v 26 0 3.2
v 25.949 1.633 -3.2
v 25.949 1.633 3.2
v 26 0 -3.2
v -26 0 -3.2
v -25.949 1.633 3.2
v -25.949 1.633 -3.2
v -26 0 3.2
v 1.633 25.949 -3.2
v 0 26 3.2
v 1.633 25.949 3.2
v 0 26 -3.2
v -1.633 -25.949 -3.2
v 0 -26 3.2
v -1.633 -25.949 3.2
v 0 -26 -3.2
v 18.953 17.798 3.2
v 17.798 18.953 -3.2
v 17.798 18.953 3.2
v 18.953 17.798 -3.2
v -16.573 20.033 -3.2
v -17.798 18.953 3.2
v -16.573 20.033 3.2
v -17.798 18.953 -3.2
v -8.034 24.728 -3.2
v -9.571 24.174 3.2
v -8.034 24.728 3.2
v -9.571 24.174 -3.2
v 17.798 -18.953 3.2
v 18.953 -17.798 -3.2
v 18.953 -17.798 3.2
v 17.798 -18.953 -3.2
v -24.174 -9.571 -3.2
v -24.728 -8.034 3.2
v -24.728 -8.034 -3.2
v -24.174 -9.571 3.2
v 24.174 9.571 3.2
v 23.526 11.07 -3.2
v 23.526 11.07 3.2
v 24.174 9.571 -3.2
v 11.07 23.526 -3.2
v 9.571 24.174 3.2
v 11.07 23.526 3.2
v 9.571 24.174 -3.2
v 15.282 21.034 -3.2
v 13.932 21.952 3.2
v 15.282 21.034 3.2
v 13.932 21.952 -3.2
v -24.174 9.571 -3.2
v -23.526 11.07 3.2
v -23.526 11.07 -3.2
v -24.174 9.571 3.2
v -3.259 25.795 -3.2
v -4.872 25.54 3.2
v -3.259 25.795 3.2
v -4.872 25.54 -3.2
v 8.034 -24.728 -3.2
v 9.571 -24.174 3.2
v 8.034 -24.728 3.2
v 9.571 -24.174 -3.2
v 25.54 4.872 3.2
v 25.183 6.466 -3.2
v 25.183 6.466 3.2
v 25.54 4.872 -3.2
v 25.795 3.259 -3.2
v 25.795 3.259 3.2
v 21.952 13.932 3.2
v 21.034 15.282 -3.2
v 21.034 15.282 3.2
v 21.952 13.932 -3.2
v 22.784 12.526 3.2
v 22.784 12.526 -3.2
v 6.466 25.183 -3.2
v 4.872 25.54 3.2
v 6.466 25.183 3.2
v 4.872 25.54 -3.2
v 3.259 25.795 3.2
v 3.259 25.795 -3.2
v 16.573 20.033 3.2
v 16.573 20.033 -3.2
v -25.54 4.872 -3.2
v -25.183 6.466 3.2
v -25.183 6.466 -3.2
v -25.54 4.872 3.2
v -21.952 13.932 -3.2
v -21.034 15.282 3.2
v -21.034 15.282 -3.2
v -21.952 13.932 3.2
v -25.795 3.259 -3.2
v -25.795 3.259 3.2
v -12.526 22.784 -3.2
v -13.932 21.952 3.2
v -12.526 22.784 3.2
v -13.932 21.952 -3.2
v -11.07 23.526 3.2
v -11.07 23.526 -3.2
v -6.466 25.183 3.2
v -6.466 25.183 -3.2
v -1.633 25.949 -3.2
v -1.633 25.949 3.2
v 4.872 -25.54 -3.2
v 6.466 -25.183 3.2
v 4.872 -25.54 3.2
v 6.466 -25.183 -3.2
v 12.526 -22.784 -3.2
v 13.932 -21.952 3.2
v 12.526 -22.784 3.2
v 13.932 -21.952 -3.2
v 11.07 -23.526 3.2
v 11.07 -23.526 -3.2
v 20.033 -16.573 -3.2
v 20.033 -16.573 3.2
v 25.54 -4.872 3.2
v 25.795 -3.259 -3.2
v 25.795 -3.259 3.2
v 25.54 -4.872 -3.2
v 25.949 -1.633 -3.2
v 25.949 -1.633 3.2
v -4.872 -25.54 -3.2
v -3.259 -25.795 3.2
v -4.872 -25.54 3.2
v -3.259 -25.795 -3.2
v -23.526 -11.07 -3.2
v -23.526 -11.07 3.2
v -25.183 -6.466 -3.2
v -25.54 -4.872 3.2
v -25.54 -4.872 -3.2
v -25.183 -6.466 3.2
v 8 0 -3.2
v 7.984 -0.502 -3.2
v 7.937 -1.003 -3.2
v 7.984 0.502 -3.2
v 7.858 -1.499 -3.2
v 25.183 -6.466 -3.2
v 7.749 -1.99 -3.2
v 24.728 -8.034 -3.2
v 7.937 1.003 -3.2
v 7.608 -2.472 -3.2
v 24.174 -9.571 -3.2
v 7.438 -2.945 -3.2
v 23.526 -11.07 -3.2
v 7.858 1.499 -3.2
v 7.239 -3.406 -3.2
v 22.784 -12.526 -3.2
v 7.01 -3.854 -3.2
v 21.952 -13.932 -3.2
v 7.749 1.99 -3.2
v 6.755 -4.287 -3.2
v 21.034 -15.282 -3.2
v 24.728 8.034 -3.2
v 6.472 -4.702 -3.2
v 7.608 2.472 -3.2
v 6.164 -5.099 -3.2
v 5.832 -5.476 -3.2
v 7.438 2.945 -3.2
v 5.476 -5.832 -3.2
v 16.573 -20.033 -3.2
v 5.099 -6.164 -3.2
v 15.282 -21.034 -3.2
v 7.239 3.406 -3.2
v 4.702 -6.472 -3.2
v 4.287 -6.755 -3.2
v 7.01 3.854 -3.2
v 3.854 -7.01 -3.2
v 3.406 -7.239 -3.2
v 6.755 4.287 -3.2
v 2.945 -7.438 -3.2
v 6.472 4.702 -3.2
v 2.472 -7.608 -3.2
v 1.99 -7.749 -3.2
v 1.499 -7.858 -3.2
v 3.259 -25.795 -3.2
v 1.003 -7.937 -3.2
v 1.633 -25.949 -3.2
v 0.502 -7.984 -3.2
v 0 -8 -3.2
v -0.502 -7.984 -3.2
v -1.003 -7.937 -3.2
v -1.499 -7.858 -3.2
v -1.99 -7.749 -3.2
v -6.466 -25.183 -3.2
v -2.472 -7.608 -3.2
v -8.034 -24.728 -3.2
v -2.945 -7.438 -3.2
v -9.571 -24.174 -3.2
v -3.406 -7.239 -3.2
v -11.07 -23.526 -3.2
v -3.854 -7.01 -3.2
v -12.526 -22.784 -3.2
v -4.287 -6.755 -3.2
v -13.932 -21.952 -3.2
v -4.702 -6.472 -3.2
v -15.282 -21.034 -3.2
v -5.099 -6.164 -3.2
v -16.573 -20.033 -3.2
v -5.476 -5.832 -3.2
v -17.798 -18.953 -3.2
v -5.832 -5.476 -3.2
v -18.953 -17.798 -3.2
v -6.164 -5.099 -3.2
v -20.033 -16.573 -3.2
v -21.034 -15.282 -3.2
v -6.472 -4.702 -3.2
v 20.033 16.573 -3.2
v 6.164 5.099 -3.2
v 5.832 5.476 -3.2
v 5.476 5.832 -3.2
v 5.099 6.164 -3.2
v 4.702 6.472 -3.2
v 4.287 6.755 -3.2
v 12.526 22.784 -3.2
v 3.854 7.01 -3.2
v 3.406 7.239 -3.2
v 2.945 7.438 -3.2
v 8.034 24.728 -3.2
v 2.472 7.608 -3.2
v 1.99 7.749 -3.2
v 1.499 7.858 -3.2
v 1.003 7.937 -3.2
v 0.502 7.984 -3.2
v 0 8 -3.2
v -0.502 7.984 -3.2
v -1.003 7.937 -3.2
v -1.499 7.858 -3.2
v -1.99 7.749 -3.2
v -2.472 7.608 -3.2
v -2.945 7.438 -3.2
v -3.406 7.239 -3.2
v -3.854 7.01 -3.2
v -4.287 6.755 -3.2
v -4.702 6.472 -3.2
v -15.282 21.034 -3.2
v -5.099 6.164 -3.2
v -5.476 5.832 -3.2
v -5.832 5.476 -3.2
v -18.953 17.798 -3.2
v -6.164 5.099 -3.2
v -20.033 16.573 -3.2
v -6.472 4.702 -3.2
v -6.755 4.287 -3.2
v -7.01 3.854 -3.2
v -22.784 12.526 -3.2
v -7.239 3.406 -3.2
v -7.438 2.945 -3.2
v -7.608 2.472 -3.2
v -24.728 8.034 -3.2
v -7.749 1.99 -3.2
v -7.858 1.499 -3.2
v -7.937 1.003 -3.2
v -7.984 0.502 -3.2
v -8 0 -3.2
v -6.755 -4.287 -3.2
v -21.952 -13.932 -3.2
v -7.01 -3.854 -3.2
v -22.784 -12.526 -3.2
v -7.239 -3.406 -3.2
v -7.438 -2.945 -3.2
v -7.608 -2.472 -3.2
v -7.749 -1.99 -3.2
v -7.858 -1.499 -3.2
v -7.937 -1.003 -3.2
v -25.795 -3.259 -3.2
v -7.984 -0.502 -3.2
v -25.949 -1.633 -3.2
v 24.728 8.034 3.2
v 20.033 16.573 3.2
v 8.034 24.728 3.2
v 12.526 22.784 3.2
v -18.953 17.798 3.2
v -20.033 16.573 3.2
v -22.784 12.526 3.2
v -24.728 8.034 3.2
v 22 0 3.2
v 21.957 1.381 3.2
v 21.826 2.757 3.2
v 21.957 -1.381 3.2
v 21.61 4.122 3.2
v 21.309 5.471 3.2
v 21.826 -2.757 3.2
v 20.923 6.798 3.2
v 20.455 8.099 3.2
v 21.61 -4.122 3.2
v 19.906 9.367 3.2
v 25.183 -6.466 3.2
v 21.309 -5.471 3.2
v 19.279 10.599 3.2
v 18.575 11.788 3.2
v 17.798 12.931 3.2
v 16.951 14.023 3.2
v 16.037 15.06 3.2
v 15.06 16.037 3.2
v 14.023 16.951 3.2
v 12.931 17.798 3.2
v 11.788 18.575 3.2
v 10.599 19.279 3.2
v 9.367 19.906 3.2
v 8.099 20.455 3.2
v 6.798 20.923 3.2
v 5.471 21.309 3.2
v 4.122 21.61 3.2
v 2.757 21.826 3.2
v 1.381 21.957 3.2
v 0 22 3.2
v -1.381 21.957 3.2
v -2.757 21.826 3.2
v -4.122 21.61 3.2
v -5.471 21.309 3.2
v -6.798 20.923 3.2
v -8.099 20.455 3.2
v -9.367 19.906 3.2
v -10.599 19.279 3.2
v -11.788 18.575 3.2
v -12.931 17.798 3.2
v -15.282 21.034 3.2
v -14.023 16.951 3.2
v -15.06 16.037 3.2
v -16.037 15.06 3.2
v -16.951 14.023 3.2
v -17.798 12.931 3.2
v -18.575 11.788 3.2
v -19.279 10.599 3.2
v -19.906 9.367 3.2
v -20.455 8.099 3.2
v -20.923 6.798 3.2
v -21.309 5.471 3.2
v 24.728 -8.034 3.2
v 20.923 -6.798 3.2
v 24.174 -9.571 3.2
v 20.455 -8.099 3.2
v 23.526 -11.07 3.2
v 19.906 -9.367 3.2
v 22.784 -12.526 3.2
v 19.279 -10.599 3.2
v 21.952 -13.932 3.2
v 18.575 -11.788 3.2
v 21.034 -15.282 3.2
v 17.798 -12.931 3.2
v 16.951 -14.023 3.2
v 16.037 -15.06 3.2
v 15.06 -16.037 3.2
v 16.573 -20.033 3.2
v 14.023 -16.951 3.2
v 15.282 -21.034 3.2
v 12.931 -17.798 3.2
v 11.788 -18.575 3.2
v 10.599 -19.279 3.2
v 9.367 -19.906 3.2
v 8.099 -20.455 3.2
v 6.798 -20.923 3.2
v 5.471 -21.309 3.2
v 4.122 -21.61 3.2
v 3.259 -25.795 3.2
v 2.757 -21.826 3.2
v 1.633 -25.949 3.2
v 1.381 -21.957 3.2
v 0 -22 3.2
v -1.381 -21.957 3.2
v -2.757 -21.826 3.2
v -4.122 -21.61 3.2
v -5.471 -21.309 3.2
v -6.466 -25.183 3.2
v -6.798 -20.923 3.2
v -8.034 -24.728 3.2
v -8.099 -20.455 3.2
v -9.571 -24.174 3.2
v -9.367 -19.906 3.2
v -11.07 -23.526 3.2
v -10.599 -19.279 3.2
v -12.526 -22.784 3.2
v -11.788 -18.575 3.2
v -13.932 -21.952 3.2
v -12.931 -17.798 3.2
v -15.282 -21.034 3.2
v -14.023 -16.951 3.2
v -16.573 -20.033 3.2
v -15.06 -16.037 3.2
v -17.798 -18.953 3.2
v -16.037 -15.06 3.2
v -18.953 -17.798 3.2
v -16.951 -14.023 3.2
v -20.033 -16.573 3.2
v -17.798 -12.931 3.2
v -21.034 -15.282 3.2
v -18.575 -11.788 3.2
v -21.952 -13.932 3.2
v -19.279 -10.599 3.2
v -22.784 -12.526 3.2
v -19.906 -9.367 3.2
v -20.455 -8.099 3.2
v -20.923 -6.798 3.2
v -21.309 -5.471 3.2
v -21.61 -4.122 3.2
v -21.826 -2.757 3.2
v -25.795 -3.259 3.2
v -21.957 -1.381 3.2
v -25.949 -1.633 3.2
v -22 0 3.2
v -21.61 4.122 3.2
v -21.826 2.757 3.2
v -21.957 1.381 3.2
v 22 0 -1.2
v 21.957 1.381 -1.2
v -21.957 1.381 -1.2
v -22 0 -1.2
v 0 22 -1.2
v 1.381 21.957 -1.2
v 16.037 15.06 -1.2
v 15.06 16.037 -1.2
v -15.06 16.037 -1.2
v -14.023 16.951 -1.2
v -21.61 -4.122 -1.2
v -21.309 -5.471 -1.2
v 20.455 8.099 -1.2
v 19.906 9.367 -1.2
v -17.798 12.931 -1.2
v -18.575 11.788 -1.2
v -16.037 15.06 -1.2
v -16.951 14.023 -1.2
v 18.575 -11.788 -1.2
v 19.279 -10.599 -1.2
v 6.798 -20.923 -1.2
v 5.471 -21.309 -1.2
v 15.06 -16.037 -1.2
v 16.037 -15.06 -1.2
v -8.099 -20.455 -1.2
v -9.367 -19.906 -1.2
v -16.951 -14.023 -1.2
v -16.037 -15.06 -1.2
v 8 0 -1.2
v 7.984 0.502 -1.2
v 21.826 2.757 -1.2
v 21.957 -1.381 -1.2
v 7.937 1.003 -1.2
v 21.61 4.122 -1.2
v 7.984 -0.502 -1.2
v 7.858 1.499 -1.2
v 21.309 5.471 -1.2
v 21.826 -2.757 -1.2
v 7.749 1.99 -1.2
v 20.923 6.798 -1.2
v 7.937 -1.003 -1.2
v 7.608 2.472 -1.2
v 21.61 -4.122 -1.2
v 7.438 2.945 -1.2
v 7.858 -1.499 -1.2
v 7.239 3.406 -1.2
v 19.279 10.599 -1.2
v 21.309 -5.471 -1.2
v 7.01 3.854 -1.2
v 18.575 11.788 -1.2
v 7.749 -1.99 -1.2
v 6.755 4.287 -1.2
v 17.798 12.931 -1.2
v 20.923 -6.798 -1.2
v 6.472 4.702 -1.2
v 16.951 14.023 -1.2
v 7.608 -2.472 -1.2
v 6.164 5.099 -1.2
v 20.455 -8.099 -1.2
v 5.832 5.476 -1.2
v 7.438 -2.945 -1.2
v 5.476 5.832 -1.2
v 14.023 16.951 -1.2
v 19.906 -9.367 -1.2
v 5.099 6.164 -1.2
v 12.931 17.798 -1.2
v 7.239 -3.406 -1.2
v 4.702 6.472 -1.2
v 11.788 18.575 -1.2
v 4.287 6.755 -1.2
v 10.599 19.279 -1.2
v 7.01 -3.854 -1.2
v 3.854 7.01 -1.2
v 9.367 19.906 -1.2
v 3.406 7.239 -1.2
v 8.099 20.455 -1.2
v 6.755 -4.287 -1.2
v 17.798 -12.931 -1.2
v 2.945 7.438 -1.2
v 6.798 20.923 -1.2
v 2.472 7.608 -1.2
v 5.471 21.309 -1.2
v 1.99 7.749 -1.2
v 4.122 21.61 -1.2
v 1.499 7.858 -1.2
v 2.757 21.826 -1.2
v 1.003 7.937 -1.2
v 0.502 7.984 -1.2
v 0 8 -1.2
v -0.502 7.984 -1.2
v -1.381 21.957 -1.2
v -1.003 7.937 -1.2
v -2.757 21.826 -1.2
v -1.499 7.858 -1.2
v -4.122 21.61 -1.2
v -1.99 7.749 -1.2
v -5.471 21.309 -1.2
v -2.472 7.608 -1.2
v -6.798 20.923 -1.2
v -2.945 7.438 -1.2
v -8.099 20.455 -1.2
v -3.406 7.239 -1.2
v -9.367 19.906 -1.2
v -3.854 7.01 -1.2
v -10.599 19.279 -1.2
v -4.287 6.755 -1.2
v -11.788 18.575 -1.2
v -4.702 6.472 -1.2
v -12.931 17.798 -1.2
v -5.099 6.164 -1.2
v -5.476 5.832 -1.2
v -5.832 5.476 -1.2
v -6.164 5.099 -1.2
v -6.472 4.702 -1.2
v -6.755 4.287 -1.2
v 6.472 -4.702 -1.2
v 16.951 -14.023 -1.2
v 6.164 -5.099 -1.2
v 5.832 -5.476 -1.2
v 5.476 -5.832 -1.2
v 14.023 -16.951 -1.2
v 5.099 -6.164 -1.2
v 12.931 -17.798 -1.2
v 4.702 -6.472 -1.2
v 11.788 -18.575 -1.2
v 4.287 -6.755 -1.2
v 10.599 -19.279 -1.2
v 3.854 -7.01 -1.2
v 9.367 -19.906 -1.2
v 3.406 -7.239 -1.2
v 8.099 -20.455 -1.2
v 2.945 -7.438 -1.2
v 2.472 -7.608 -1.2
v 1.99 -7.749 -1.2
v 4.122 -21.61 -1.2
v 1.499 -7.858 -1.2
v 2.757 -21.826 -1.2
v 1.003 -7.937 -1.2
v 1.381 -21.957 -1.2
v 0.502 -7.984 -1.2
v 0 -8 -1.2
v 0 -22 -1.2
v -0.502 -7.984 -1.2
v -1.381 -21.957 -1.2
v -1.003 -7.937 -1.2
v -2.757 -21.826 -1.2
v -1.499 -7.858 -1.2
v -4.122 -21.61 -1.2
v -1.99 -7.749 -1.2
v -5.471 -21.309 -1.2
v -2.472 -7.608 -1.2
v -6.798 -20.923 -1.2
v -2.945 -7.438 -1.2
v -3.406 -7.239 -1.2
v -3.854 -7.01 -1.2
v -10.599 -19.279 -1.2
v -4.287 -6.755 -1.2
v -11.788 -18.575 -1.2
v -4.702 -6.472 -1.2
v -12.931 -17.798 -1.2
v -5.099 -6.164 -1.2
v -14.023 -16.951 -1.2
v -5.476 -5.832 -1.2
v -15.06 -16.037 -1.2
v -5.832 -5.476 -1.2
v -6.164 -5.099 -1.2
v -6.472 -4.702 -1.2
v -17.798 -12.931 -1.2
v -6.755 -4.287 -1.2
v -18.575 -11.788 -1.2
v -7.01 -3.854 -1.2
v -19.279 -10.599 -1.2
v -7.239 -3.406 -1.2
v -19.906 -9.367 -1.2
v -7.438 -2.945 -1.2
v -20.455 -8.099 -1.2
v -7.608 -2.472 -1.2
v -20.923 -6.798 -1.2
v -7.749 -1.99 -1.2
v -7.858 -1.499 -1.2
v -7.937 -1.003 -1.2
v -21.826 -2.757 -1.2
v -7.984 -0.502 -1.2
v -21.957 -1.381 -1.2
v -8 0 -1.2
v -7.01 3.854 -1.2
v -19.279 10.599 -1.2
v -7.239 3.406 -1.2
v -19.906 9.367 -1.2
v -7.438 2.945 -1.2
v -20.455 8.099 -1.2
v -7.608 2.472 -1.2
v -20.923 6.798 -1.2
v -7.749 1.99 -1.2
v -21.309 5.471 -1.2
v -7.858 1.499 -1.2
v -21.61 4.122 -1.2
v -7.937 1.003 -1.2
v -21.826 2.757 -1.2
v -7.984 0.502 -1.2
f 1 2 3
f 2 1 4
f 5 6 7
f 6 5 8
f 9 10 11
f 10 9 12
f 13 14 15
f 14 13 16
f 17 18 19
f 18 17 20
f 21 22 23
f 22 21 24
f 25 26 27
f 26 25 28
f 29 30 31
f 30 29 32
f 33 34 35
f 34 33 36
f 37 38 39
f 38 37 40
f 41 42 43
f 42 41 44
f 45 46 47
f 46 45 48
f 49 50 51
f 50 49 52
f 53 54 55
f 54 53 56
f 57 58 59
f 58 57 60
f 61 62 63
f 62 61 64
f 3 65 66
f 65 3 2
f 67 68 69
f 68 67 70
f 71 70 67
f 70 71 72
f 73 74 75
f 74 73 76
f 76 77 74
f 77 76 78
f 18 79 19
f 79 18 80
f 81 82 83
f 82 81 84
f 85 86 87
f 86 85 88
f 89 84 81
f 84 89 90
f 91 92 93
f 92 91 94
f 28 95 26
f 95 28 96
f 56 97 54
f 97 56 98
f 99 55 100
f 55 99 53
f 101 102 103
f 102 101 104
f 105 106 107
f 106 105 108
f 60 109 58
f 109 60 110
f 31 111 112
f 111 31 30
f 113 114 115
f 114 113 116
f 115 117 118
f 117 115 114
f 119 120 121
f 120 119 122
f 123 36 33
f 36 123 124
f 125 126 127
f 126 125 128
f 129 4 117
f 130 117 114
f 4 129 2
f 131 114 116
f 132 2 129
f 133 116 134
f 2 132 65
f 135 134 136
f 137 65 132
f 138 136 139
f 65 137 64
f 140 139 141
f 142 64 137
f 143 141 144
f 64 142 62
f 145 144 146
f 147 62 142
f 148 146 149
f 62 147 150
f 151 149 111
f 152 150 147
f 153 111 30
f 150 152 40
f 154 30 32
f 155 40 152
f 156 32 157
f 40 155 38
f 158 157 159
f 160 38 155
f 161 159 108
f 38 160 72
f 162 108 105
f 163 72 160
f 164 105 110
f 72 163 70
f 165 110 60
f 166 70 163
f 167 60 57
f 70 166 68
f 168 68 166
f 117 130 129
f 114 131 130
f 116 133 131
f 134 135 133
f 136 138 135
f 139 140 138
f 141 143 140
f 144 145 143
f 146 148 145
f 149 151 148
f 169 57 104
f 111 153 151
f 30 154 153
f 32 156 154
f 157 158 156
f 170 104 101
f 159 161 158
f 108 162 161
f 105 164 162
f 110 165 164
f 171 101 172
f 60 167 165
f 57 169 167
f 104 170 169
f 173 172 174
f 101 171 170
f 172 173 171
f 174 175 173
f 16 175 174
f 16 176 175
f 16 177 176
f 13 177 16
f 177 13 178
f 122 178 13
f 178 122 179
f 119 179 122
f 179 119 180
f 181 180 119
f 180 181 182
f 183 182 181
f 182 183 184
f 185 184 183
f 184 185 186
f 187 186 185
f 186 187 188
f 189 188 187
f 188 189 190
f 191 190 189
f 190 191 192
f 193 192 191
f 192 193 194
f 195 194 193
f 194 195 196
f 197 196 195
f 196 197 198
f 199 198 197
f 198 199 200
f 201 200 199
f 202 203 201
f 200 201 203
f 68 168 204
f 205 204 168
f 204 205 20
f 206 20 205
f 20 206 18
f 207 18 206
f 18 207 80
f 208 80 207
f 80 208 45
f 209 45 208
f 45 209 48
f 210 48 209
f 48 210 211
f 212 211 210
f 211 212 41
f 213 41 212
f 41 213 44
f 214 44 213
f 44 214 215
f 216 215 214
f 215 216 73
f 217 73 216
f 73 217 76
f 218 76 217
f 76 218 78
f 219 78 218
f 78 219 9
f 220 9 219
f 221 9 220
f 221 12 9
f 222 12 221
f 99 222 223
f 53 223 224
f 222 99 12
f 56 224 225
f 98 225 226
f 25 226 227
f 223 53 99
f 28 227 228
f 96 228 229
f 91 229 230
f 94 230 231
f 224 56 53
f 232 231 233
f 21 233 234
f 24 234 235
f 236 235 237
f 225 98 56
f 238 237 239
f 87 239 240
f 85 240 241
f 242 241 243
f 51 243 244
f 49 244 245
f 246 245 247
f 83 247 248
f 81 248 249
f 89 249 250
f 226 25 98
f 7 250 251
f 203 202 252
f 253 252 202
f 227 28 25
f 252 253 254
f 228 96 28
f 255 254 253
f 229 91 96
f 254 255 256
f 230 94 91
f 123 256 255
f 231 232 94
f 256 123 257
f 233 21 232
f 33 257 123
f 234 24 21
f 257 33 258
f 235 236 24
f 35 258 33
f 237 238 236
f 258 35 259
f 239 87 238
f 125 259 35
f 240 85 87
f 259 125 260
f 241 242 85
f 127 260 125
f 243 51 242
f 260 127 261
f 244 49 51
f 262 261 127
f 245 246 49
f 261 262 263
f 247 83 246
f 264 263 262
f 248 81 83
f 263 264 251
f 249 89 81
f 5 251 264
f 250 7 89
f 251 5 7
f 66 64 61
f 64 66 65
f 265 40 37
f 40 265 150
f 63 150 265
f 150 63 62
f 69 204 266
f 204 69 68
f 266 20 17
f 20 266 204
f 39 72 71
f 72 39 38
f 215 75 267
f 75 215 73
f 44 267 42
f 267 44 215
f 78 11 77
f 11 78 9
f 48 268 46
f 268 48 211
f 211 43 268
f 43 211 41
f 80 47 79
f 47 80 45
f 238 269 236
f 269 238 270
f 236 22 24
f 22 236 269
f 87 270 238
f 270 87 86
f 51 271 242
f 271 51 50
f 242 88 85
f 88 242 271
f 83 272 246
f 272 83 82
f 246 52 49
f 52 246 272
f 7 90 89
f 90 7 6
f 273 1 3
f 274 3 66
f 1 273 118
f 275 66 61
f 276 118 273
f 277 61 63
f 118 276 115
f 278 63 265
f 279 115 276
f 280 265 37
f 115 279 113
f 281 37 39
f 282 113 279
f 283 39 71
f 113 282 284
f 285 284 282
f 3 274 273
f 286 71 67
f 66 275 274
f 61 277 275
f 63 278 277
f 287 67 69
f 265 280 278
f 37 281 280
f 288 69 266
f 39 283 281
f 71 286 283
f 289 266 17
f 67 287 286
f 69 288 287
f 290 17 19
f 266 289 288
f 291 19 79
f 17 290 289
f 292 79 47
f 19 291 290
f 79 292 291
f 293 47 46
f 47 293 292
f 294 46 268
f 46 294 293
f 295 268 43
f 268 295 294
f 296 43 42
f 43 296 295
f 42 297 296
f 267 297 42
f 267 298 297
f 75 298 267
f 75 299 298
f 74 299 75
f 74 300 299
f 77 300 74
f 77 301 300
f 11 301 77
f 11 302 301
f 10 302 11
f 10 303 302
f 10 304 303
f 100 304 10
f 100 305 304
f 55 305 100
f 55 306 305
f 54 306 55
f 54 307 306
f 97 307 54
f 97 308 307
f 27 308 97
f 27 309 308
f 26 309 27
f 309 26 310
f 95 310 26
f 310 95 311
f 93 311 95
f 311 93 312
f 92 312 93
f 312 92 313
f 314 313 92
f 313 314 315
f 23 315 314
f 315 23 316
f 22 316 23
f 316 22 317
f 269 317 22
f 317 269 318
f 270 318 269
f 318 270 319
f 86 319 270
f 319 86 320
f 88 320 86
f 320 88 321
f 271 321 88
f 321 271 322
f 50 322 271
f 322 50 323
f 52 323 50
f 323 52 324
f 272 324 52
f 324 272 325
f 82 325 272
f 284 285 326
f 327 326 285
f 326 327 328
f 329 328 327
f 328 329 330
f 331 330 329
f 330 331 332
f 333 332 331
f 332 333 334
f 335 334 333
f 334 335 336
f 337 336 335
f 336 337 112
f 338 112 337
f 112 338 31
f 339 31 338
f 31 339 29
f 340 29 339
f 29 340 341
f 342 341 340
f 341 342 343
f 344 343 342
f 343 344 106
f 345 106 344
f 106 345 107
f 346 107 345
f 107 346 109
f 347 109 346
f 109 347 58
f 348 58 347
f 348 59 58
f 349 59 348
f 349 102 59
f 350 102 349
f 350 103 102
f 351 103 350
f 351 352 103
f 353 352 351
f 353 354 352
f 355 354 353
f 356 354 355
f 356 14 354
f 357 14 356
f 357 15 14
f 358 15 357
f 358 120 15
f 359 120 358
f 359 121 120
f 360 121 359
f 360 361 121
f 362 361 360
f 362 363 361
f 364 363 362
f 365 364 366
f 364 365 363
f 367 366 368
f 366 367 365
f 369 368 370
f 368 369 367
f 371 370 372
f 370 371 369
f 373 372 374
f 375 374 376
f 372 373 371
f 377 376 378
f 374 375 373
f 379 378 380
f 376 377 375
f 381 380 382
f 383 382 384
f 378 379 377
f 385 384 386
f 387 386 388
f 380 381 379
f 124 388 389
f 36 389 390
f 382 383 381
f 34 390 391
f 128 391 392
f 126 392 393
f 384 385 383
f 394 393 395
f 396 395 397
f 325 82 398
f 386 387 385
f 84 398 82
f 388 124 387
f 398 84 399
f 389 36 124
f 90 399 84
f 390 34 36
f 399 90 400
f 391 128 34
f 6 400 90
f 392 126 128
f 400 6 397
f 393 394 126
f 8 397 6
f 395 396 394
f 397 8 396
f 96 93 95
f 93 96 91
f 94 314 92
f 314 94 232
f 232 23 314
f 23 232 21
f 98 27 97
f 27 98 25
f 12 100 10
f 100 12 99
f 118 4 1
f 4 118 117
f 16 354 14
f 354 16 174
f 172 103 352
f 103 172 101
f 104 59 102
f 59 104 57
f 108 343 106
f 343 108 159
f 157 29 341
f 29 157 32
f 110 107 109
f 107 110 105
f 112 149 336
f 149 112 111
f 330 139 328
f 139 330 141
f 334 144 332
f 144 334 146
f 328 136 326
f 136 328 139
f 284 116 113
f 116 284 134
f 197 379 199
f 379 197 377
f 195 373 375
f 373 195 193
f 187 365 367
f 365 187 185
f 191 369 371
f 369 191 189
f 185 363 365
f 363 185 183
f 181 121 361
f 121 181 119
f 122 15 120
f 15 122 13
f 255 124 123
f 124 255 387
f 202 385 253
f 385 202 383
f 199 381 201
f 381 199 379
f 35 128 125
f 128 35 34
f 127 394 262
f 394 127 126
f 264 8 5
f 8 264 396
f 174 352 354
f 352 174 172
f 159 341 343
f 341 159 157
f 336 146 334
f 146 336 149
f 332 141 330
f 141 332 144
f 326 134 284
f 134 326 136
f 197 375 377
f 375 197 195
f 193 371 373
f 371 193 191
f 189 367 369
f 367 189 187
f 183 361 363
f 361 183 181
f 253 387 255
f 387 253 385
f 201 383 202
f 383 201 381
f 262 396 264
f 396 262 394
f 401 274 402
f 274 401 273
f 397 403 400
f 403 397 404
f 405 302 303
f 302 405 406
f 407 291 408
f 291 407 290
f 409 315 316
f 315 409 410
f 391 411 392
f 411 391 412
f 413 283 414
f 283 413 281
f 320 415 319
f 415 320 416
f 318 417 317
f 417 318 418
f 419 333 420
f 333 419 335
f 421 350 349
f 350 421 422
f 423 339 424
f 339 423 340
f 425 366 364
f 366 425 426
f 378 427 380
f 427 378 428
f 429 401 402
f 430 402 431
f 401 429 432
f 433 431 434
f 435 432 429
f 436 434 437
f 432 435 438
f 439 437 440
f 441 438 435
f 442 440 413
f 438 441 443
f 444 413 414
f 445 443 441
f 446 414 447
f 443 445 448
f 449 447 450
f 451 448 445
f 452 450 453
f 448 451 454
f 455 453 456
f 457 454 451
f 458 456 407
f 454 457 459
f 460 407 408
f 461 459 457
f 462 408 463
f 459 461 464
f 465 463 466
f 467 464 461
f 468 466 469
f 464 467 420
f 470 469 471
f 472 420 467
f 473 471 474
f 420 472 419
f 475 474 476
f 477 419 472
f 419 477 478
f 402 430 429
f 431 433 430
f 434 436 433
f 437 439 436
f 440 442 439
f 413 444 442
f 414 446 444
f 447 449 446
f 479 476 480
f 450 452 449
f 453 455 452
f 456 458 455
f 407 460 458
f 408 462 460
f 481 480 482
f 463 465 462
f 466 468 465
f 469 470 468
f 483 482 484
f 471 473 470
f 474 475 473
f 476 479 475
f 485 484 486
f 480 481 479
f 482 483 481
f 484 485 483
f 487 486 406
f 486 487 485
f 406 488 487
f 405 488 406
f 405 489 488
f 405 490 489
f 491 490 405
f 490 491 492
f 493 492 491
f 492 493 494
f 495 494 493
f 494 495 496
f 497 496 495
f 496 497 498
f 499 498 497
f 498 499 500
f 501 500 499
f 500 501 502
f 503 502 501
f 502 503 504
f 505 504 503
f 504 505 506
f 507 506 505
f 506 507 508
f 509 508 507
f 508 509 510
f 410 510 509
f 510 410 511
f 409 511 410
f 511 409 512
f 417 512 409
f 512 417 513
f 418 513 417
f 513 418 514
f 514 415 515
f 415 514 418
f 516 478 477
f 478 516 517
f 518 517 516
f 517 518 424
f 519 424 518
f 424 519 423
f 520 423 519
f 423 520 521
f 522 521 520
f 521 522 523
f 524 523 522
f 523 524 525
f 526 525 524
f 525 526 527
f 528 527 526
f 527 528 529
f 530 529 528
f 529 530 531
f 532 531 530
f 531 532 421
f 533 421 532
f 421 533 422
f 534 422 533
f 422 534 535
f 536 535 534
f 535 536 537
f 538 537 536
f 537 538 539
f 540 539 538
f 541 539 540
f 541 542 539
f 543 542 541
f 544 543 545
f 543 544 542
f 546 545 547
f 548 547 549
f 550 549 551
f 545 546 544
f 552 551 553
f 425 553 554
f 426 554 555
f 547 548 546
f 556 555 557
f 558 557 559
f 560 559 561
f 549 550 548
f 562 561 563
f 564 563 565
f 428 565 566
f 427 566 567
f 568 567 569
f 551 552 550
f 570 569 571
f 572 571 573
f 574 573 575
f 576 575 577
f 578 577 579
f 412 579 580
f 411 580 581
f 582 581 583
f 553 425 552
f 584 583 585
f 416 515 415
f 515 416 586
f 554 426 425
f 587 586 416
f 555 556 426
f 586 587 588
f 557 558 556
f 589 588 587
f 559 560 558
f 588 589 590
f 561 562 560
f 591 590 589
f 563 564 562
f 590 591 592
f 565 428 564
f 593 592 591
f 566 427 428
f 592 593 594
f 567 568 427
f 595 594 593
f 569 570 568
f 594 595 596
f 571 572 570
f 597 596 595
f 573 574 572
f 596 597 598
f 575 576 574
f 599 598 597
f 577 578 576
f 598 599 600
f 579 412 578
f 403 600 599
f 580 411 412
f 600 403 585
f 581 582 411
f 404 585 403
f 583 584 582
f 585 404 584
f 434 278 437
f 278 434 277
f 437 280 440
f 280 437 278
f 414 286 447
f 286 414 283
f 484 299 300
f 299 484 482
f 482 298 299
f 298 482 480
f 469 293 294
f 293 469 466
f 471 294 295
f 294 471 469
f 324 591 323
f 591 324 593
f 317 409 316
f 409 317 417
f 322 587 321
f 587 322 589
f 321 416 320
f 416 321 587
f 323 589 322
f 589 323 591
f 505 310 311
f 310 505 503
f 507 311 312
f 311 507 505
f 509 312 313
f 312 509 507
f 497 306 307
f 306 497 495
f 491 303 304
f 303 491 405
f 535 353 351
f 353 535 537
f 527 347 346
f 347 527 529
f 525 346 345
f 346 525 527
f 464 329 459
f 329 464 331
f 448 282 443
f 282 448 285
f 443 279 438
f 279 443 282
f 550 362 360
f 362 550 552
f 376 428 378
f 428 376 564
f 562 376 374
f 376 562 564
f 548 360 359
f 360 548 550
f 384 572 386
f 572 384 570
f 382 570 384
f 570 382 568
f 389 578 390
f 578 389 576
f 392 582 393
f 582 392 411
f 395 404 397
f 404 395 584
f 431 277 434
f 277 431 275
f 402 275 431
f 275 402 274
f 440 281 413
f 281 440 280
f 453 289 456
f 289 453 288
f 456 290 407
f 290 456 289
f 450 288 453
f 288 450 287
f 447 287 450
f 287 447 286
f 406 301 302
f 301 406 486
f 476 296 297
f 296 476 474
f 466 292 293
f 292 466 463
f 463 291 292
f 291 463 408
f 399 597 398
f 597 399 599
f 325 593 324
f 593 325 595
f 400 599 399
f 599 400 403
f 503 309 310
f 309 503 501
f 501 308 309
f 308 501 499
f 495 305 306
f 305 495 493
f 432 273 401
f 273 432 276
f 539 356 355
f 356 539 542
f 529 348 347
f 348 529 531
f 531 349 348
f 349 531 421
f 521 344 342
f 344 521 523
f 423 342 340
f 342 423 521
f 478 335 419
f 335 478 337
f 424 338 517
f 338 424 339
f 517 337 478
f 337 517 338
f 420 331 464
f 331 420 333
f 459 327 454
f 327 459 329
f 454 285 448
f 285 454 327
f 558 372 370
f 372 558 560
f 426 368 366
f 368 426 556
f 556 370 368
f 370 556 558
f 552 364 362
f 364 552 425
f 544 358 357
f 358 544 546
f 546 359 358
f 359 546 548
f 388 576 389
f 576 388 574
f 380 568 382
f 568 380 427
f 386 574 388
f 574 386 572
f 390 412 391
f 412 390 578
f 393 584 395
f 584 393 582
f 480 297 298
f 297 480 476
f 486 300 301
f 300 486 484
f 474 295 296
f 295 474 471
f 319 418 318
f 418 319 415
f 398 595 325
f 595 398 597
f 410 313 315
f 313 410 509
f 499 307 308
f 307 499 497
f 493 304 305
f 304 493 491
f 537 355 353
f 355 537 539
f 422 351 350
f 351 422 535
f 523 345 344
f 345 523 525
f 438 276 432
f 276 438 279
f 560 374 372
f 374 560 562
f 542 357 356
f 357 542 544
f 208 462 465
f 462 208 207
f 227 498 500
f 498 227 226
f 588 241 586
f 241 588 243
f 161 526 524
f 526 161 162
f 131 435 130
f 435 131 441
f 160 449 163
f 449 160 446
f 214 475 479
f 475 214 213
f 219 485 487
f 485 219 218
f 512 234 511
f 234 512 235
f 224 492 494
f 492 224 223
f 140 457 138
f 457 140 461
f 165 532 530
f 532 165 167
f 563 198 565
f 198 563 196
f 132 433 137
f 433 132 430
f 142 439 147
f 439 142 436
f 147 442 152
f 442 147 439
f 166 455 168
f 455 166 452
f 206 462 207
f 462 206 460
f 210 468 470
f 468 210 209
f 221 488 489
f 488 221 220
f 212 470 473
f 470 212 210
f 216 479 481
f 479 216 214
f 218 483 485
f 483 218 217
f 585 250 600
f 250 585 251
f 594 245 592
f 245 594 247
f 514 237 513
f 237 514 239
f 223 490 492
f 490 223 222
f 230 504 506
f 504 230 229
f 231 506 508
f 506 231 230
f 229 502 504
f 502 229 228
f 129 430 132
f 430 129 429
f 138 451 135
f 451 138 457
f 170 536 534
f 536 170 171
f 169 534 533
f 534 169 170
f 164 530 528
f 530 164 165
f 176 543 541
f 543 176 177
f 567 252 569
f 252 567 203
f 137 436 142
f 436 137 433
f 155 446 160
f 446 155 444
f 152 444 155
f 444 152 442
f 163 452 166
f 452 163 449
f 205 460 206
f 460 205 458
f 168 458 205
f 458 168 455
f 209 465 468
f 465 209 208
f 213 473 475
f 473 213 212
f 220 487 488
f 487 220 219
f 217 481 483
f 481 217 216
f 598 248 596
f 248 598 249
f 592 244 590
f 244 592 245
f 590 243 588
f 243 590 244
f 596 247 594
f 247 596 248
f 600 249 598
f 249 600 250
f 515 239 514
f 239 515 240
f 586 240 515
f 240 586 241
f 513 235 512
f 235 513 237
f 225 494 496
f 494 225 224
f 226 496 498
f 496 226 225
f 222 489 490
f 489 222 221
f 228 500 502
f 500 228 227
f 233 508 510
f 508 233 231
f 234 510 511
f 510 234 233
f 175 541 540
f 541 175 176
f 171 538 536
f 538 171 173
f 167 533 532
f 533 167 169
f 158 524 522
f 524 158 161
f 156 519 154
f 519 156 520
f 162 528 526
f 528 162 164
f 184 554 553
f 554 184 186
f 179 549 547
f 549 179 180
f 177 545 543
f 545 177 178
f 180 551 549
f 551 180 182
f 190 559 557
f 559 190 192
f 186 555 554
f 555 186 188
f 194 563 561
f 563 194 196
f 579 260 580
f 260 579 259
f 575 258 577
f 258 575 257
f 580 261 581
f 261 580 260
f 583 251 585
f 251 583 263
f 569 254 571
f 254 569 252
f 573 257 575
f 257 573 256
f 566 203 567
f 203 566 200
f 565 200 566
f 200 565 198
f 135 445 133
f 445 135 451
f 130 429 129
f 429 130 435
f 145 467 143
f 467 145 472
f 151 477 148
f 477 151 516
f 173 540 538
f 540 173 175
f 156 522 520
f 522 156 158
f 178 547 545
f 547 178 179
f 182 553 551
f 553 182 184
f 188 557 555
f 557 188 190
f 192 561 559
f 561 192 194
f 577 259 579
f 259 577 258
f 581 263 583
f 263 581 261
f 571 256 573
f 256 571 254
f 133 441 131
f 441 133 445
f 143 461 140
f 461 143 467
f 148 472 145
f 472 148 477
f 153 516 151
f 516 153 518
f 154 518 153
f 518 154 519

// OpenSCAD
$fn=100;

difference() {
 cylinder(r=52/2., h=6.4, center=true);
 # translate([0, 0, 1]) cylinder(r=44/2., h=6.4-2, center=true);
 cylinder(r=16/2., h=100, center=true);
}
